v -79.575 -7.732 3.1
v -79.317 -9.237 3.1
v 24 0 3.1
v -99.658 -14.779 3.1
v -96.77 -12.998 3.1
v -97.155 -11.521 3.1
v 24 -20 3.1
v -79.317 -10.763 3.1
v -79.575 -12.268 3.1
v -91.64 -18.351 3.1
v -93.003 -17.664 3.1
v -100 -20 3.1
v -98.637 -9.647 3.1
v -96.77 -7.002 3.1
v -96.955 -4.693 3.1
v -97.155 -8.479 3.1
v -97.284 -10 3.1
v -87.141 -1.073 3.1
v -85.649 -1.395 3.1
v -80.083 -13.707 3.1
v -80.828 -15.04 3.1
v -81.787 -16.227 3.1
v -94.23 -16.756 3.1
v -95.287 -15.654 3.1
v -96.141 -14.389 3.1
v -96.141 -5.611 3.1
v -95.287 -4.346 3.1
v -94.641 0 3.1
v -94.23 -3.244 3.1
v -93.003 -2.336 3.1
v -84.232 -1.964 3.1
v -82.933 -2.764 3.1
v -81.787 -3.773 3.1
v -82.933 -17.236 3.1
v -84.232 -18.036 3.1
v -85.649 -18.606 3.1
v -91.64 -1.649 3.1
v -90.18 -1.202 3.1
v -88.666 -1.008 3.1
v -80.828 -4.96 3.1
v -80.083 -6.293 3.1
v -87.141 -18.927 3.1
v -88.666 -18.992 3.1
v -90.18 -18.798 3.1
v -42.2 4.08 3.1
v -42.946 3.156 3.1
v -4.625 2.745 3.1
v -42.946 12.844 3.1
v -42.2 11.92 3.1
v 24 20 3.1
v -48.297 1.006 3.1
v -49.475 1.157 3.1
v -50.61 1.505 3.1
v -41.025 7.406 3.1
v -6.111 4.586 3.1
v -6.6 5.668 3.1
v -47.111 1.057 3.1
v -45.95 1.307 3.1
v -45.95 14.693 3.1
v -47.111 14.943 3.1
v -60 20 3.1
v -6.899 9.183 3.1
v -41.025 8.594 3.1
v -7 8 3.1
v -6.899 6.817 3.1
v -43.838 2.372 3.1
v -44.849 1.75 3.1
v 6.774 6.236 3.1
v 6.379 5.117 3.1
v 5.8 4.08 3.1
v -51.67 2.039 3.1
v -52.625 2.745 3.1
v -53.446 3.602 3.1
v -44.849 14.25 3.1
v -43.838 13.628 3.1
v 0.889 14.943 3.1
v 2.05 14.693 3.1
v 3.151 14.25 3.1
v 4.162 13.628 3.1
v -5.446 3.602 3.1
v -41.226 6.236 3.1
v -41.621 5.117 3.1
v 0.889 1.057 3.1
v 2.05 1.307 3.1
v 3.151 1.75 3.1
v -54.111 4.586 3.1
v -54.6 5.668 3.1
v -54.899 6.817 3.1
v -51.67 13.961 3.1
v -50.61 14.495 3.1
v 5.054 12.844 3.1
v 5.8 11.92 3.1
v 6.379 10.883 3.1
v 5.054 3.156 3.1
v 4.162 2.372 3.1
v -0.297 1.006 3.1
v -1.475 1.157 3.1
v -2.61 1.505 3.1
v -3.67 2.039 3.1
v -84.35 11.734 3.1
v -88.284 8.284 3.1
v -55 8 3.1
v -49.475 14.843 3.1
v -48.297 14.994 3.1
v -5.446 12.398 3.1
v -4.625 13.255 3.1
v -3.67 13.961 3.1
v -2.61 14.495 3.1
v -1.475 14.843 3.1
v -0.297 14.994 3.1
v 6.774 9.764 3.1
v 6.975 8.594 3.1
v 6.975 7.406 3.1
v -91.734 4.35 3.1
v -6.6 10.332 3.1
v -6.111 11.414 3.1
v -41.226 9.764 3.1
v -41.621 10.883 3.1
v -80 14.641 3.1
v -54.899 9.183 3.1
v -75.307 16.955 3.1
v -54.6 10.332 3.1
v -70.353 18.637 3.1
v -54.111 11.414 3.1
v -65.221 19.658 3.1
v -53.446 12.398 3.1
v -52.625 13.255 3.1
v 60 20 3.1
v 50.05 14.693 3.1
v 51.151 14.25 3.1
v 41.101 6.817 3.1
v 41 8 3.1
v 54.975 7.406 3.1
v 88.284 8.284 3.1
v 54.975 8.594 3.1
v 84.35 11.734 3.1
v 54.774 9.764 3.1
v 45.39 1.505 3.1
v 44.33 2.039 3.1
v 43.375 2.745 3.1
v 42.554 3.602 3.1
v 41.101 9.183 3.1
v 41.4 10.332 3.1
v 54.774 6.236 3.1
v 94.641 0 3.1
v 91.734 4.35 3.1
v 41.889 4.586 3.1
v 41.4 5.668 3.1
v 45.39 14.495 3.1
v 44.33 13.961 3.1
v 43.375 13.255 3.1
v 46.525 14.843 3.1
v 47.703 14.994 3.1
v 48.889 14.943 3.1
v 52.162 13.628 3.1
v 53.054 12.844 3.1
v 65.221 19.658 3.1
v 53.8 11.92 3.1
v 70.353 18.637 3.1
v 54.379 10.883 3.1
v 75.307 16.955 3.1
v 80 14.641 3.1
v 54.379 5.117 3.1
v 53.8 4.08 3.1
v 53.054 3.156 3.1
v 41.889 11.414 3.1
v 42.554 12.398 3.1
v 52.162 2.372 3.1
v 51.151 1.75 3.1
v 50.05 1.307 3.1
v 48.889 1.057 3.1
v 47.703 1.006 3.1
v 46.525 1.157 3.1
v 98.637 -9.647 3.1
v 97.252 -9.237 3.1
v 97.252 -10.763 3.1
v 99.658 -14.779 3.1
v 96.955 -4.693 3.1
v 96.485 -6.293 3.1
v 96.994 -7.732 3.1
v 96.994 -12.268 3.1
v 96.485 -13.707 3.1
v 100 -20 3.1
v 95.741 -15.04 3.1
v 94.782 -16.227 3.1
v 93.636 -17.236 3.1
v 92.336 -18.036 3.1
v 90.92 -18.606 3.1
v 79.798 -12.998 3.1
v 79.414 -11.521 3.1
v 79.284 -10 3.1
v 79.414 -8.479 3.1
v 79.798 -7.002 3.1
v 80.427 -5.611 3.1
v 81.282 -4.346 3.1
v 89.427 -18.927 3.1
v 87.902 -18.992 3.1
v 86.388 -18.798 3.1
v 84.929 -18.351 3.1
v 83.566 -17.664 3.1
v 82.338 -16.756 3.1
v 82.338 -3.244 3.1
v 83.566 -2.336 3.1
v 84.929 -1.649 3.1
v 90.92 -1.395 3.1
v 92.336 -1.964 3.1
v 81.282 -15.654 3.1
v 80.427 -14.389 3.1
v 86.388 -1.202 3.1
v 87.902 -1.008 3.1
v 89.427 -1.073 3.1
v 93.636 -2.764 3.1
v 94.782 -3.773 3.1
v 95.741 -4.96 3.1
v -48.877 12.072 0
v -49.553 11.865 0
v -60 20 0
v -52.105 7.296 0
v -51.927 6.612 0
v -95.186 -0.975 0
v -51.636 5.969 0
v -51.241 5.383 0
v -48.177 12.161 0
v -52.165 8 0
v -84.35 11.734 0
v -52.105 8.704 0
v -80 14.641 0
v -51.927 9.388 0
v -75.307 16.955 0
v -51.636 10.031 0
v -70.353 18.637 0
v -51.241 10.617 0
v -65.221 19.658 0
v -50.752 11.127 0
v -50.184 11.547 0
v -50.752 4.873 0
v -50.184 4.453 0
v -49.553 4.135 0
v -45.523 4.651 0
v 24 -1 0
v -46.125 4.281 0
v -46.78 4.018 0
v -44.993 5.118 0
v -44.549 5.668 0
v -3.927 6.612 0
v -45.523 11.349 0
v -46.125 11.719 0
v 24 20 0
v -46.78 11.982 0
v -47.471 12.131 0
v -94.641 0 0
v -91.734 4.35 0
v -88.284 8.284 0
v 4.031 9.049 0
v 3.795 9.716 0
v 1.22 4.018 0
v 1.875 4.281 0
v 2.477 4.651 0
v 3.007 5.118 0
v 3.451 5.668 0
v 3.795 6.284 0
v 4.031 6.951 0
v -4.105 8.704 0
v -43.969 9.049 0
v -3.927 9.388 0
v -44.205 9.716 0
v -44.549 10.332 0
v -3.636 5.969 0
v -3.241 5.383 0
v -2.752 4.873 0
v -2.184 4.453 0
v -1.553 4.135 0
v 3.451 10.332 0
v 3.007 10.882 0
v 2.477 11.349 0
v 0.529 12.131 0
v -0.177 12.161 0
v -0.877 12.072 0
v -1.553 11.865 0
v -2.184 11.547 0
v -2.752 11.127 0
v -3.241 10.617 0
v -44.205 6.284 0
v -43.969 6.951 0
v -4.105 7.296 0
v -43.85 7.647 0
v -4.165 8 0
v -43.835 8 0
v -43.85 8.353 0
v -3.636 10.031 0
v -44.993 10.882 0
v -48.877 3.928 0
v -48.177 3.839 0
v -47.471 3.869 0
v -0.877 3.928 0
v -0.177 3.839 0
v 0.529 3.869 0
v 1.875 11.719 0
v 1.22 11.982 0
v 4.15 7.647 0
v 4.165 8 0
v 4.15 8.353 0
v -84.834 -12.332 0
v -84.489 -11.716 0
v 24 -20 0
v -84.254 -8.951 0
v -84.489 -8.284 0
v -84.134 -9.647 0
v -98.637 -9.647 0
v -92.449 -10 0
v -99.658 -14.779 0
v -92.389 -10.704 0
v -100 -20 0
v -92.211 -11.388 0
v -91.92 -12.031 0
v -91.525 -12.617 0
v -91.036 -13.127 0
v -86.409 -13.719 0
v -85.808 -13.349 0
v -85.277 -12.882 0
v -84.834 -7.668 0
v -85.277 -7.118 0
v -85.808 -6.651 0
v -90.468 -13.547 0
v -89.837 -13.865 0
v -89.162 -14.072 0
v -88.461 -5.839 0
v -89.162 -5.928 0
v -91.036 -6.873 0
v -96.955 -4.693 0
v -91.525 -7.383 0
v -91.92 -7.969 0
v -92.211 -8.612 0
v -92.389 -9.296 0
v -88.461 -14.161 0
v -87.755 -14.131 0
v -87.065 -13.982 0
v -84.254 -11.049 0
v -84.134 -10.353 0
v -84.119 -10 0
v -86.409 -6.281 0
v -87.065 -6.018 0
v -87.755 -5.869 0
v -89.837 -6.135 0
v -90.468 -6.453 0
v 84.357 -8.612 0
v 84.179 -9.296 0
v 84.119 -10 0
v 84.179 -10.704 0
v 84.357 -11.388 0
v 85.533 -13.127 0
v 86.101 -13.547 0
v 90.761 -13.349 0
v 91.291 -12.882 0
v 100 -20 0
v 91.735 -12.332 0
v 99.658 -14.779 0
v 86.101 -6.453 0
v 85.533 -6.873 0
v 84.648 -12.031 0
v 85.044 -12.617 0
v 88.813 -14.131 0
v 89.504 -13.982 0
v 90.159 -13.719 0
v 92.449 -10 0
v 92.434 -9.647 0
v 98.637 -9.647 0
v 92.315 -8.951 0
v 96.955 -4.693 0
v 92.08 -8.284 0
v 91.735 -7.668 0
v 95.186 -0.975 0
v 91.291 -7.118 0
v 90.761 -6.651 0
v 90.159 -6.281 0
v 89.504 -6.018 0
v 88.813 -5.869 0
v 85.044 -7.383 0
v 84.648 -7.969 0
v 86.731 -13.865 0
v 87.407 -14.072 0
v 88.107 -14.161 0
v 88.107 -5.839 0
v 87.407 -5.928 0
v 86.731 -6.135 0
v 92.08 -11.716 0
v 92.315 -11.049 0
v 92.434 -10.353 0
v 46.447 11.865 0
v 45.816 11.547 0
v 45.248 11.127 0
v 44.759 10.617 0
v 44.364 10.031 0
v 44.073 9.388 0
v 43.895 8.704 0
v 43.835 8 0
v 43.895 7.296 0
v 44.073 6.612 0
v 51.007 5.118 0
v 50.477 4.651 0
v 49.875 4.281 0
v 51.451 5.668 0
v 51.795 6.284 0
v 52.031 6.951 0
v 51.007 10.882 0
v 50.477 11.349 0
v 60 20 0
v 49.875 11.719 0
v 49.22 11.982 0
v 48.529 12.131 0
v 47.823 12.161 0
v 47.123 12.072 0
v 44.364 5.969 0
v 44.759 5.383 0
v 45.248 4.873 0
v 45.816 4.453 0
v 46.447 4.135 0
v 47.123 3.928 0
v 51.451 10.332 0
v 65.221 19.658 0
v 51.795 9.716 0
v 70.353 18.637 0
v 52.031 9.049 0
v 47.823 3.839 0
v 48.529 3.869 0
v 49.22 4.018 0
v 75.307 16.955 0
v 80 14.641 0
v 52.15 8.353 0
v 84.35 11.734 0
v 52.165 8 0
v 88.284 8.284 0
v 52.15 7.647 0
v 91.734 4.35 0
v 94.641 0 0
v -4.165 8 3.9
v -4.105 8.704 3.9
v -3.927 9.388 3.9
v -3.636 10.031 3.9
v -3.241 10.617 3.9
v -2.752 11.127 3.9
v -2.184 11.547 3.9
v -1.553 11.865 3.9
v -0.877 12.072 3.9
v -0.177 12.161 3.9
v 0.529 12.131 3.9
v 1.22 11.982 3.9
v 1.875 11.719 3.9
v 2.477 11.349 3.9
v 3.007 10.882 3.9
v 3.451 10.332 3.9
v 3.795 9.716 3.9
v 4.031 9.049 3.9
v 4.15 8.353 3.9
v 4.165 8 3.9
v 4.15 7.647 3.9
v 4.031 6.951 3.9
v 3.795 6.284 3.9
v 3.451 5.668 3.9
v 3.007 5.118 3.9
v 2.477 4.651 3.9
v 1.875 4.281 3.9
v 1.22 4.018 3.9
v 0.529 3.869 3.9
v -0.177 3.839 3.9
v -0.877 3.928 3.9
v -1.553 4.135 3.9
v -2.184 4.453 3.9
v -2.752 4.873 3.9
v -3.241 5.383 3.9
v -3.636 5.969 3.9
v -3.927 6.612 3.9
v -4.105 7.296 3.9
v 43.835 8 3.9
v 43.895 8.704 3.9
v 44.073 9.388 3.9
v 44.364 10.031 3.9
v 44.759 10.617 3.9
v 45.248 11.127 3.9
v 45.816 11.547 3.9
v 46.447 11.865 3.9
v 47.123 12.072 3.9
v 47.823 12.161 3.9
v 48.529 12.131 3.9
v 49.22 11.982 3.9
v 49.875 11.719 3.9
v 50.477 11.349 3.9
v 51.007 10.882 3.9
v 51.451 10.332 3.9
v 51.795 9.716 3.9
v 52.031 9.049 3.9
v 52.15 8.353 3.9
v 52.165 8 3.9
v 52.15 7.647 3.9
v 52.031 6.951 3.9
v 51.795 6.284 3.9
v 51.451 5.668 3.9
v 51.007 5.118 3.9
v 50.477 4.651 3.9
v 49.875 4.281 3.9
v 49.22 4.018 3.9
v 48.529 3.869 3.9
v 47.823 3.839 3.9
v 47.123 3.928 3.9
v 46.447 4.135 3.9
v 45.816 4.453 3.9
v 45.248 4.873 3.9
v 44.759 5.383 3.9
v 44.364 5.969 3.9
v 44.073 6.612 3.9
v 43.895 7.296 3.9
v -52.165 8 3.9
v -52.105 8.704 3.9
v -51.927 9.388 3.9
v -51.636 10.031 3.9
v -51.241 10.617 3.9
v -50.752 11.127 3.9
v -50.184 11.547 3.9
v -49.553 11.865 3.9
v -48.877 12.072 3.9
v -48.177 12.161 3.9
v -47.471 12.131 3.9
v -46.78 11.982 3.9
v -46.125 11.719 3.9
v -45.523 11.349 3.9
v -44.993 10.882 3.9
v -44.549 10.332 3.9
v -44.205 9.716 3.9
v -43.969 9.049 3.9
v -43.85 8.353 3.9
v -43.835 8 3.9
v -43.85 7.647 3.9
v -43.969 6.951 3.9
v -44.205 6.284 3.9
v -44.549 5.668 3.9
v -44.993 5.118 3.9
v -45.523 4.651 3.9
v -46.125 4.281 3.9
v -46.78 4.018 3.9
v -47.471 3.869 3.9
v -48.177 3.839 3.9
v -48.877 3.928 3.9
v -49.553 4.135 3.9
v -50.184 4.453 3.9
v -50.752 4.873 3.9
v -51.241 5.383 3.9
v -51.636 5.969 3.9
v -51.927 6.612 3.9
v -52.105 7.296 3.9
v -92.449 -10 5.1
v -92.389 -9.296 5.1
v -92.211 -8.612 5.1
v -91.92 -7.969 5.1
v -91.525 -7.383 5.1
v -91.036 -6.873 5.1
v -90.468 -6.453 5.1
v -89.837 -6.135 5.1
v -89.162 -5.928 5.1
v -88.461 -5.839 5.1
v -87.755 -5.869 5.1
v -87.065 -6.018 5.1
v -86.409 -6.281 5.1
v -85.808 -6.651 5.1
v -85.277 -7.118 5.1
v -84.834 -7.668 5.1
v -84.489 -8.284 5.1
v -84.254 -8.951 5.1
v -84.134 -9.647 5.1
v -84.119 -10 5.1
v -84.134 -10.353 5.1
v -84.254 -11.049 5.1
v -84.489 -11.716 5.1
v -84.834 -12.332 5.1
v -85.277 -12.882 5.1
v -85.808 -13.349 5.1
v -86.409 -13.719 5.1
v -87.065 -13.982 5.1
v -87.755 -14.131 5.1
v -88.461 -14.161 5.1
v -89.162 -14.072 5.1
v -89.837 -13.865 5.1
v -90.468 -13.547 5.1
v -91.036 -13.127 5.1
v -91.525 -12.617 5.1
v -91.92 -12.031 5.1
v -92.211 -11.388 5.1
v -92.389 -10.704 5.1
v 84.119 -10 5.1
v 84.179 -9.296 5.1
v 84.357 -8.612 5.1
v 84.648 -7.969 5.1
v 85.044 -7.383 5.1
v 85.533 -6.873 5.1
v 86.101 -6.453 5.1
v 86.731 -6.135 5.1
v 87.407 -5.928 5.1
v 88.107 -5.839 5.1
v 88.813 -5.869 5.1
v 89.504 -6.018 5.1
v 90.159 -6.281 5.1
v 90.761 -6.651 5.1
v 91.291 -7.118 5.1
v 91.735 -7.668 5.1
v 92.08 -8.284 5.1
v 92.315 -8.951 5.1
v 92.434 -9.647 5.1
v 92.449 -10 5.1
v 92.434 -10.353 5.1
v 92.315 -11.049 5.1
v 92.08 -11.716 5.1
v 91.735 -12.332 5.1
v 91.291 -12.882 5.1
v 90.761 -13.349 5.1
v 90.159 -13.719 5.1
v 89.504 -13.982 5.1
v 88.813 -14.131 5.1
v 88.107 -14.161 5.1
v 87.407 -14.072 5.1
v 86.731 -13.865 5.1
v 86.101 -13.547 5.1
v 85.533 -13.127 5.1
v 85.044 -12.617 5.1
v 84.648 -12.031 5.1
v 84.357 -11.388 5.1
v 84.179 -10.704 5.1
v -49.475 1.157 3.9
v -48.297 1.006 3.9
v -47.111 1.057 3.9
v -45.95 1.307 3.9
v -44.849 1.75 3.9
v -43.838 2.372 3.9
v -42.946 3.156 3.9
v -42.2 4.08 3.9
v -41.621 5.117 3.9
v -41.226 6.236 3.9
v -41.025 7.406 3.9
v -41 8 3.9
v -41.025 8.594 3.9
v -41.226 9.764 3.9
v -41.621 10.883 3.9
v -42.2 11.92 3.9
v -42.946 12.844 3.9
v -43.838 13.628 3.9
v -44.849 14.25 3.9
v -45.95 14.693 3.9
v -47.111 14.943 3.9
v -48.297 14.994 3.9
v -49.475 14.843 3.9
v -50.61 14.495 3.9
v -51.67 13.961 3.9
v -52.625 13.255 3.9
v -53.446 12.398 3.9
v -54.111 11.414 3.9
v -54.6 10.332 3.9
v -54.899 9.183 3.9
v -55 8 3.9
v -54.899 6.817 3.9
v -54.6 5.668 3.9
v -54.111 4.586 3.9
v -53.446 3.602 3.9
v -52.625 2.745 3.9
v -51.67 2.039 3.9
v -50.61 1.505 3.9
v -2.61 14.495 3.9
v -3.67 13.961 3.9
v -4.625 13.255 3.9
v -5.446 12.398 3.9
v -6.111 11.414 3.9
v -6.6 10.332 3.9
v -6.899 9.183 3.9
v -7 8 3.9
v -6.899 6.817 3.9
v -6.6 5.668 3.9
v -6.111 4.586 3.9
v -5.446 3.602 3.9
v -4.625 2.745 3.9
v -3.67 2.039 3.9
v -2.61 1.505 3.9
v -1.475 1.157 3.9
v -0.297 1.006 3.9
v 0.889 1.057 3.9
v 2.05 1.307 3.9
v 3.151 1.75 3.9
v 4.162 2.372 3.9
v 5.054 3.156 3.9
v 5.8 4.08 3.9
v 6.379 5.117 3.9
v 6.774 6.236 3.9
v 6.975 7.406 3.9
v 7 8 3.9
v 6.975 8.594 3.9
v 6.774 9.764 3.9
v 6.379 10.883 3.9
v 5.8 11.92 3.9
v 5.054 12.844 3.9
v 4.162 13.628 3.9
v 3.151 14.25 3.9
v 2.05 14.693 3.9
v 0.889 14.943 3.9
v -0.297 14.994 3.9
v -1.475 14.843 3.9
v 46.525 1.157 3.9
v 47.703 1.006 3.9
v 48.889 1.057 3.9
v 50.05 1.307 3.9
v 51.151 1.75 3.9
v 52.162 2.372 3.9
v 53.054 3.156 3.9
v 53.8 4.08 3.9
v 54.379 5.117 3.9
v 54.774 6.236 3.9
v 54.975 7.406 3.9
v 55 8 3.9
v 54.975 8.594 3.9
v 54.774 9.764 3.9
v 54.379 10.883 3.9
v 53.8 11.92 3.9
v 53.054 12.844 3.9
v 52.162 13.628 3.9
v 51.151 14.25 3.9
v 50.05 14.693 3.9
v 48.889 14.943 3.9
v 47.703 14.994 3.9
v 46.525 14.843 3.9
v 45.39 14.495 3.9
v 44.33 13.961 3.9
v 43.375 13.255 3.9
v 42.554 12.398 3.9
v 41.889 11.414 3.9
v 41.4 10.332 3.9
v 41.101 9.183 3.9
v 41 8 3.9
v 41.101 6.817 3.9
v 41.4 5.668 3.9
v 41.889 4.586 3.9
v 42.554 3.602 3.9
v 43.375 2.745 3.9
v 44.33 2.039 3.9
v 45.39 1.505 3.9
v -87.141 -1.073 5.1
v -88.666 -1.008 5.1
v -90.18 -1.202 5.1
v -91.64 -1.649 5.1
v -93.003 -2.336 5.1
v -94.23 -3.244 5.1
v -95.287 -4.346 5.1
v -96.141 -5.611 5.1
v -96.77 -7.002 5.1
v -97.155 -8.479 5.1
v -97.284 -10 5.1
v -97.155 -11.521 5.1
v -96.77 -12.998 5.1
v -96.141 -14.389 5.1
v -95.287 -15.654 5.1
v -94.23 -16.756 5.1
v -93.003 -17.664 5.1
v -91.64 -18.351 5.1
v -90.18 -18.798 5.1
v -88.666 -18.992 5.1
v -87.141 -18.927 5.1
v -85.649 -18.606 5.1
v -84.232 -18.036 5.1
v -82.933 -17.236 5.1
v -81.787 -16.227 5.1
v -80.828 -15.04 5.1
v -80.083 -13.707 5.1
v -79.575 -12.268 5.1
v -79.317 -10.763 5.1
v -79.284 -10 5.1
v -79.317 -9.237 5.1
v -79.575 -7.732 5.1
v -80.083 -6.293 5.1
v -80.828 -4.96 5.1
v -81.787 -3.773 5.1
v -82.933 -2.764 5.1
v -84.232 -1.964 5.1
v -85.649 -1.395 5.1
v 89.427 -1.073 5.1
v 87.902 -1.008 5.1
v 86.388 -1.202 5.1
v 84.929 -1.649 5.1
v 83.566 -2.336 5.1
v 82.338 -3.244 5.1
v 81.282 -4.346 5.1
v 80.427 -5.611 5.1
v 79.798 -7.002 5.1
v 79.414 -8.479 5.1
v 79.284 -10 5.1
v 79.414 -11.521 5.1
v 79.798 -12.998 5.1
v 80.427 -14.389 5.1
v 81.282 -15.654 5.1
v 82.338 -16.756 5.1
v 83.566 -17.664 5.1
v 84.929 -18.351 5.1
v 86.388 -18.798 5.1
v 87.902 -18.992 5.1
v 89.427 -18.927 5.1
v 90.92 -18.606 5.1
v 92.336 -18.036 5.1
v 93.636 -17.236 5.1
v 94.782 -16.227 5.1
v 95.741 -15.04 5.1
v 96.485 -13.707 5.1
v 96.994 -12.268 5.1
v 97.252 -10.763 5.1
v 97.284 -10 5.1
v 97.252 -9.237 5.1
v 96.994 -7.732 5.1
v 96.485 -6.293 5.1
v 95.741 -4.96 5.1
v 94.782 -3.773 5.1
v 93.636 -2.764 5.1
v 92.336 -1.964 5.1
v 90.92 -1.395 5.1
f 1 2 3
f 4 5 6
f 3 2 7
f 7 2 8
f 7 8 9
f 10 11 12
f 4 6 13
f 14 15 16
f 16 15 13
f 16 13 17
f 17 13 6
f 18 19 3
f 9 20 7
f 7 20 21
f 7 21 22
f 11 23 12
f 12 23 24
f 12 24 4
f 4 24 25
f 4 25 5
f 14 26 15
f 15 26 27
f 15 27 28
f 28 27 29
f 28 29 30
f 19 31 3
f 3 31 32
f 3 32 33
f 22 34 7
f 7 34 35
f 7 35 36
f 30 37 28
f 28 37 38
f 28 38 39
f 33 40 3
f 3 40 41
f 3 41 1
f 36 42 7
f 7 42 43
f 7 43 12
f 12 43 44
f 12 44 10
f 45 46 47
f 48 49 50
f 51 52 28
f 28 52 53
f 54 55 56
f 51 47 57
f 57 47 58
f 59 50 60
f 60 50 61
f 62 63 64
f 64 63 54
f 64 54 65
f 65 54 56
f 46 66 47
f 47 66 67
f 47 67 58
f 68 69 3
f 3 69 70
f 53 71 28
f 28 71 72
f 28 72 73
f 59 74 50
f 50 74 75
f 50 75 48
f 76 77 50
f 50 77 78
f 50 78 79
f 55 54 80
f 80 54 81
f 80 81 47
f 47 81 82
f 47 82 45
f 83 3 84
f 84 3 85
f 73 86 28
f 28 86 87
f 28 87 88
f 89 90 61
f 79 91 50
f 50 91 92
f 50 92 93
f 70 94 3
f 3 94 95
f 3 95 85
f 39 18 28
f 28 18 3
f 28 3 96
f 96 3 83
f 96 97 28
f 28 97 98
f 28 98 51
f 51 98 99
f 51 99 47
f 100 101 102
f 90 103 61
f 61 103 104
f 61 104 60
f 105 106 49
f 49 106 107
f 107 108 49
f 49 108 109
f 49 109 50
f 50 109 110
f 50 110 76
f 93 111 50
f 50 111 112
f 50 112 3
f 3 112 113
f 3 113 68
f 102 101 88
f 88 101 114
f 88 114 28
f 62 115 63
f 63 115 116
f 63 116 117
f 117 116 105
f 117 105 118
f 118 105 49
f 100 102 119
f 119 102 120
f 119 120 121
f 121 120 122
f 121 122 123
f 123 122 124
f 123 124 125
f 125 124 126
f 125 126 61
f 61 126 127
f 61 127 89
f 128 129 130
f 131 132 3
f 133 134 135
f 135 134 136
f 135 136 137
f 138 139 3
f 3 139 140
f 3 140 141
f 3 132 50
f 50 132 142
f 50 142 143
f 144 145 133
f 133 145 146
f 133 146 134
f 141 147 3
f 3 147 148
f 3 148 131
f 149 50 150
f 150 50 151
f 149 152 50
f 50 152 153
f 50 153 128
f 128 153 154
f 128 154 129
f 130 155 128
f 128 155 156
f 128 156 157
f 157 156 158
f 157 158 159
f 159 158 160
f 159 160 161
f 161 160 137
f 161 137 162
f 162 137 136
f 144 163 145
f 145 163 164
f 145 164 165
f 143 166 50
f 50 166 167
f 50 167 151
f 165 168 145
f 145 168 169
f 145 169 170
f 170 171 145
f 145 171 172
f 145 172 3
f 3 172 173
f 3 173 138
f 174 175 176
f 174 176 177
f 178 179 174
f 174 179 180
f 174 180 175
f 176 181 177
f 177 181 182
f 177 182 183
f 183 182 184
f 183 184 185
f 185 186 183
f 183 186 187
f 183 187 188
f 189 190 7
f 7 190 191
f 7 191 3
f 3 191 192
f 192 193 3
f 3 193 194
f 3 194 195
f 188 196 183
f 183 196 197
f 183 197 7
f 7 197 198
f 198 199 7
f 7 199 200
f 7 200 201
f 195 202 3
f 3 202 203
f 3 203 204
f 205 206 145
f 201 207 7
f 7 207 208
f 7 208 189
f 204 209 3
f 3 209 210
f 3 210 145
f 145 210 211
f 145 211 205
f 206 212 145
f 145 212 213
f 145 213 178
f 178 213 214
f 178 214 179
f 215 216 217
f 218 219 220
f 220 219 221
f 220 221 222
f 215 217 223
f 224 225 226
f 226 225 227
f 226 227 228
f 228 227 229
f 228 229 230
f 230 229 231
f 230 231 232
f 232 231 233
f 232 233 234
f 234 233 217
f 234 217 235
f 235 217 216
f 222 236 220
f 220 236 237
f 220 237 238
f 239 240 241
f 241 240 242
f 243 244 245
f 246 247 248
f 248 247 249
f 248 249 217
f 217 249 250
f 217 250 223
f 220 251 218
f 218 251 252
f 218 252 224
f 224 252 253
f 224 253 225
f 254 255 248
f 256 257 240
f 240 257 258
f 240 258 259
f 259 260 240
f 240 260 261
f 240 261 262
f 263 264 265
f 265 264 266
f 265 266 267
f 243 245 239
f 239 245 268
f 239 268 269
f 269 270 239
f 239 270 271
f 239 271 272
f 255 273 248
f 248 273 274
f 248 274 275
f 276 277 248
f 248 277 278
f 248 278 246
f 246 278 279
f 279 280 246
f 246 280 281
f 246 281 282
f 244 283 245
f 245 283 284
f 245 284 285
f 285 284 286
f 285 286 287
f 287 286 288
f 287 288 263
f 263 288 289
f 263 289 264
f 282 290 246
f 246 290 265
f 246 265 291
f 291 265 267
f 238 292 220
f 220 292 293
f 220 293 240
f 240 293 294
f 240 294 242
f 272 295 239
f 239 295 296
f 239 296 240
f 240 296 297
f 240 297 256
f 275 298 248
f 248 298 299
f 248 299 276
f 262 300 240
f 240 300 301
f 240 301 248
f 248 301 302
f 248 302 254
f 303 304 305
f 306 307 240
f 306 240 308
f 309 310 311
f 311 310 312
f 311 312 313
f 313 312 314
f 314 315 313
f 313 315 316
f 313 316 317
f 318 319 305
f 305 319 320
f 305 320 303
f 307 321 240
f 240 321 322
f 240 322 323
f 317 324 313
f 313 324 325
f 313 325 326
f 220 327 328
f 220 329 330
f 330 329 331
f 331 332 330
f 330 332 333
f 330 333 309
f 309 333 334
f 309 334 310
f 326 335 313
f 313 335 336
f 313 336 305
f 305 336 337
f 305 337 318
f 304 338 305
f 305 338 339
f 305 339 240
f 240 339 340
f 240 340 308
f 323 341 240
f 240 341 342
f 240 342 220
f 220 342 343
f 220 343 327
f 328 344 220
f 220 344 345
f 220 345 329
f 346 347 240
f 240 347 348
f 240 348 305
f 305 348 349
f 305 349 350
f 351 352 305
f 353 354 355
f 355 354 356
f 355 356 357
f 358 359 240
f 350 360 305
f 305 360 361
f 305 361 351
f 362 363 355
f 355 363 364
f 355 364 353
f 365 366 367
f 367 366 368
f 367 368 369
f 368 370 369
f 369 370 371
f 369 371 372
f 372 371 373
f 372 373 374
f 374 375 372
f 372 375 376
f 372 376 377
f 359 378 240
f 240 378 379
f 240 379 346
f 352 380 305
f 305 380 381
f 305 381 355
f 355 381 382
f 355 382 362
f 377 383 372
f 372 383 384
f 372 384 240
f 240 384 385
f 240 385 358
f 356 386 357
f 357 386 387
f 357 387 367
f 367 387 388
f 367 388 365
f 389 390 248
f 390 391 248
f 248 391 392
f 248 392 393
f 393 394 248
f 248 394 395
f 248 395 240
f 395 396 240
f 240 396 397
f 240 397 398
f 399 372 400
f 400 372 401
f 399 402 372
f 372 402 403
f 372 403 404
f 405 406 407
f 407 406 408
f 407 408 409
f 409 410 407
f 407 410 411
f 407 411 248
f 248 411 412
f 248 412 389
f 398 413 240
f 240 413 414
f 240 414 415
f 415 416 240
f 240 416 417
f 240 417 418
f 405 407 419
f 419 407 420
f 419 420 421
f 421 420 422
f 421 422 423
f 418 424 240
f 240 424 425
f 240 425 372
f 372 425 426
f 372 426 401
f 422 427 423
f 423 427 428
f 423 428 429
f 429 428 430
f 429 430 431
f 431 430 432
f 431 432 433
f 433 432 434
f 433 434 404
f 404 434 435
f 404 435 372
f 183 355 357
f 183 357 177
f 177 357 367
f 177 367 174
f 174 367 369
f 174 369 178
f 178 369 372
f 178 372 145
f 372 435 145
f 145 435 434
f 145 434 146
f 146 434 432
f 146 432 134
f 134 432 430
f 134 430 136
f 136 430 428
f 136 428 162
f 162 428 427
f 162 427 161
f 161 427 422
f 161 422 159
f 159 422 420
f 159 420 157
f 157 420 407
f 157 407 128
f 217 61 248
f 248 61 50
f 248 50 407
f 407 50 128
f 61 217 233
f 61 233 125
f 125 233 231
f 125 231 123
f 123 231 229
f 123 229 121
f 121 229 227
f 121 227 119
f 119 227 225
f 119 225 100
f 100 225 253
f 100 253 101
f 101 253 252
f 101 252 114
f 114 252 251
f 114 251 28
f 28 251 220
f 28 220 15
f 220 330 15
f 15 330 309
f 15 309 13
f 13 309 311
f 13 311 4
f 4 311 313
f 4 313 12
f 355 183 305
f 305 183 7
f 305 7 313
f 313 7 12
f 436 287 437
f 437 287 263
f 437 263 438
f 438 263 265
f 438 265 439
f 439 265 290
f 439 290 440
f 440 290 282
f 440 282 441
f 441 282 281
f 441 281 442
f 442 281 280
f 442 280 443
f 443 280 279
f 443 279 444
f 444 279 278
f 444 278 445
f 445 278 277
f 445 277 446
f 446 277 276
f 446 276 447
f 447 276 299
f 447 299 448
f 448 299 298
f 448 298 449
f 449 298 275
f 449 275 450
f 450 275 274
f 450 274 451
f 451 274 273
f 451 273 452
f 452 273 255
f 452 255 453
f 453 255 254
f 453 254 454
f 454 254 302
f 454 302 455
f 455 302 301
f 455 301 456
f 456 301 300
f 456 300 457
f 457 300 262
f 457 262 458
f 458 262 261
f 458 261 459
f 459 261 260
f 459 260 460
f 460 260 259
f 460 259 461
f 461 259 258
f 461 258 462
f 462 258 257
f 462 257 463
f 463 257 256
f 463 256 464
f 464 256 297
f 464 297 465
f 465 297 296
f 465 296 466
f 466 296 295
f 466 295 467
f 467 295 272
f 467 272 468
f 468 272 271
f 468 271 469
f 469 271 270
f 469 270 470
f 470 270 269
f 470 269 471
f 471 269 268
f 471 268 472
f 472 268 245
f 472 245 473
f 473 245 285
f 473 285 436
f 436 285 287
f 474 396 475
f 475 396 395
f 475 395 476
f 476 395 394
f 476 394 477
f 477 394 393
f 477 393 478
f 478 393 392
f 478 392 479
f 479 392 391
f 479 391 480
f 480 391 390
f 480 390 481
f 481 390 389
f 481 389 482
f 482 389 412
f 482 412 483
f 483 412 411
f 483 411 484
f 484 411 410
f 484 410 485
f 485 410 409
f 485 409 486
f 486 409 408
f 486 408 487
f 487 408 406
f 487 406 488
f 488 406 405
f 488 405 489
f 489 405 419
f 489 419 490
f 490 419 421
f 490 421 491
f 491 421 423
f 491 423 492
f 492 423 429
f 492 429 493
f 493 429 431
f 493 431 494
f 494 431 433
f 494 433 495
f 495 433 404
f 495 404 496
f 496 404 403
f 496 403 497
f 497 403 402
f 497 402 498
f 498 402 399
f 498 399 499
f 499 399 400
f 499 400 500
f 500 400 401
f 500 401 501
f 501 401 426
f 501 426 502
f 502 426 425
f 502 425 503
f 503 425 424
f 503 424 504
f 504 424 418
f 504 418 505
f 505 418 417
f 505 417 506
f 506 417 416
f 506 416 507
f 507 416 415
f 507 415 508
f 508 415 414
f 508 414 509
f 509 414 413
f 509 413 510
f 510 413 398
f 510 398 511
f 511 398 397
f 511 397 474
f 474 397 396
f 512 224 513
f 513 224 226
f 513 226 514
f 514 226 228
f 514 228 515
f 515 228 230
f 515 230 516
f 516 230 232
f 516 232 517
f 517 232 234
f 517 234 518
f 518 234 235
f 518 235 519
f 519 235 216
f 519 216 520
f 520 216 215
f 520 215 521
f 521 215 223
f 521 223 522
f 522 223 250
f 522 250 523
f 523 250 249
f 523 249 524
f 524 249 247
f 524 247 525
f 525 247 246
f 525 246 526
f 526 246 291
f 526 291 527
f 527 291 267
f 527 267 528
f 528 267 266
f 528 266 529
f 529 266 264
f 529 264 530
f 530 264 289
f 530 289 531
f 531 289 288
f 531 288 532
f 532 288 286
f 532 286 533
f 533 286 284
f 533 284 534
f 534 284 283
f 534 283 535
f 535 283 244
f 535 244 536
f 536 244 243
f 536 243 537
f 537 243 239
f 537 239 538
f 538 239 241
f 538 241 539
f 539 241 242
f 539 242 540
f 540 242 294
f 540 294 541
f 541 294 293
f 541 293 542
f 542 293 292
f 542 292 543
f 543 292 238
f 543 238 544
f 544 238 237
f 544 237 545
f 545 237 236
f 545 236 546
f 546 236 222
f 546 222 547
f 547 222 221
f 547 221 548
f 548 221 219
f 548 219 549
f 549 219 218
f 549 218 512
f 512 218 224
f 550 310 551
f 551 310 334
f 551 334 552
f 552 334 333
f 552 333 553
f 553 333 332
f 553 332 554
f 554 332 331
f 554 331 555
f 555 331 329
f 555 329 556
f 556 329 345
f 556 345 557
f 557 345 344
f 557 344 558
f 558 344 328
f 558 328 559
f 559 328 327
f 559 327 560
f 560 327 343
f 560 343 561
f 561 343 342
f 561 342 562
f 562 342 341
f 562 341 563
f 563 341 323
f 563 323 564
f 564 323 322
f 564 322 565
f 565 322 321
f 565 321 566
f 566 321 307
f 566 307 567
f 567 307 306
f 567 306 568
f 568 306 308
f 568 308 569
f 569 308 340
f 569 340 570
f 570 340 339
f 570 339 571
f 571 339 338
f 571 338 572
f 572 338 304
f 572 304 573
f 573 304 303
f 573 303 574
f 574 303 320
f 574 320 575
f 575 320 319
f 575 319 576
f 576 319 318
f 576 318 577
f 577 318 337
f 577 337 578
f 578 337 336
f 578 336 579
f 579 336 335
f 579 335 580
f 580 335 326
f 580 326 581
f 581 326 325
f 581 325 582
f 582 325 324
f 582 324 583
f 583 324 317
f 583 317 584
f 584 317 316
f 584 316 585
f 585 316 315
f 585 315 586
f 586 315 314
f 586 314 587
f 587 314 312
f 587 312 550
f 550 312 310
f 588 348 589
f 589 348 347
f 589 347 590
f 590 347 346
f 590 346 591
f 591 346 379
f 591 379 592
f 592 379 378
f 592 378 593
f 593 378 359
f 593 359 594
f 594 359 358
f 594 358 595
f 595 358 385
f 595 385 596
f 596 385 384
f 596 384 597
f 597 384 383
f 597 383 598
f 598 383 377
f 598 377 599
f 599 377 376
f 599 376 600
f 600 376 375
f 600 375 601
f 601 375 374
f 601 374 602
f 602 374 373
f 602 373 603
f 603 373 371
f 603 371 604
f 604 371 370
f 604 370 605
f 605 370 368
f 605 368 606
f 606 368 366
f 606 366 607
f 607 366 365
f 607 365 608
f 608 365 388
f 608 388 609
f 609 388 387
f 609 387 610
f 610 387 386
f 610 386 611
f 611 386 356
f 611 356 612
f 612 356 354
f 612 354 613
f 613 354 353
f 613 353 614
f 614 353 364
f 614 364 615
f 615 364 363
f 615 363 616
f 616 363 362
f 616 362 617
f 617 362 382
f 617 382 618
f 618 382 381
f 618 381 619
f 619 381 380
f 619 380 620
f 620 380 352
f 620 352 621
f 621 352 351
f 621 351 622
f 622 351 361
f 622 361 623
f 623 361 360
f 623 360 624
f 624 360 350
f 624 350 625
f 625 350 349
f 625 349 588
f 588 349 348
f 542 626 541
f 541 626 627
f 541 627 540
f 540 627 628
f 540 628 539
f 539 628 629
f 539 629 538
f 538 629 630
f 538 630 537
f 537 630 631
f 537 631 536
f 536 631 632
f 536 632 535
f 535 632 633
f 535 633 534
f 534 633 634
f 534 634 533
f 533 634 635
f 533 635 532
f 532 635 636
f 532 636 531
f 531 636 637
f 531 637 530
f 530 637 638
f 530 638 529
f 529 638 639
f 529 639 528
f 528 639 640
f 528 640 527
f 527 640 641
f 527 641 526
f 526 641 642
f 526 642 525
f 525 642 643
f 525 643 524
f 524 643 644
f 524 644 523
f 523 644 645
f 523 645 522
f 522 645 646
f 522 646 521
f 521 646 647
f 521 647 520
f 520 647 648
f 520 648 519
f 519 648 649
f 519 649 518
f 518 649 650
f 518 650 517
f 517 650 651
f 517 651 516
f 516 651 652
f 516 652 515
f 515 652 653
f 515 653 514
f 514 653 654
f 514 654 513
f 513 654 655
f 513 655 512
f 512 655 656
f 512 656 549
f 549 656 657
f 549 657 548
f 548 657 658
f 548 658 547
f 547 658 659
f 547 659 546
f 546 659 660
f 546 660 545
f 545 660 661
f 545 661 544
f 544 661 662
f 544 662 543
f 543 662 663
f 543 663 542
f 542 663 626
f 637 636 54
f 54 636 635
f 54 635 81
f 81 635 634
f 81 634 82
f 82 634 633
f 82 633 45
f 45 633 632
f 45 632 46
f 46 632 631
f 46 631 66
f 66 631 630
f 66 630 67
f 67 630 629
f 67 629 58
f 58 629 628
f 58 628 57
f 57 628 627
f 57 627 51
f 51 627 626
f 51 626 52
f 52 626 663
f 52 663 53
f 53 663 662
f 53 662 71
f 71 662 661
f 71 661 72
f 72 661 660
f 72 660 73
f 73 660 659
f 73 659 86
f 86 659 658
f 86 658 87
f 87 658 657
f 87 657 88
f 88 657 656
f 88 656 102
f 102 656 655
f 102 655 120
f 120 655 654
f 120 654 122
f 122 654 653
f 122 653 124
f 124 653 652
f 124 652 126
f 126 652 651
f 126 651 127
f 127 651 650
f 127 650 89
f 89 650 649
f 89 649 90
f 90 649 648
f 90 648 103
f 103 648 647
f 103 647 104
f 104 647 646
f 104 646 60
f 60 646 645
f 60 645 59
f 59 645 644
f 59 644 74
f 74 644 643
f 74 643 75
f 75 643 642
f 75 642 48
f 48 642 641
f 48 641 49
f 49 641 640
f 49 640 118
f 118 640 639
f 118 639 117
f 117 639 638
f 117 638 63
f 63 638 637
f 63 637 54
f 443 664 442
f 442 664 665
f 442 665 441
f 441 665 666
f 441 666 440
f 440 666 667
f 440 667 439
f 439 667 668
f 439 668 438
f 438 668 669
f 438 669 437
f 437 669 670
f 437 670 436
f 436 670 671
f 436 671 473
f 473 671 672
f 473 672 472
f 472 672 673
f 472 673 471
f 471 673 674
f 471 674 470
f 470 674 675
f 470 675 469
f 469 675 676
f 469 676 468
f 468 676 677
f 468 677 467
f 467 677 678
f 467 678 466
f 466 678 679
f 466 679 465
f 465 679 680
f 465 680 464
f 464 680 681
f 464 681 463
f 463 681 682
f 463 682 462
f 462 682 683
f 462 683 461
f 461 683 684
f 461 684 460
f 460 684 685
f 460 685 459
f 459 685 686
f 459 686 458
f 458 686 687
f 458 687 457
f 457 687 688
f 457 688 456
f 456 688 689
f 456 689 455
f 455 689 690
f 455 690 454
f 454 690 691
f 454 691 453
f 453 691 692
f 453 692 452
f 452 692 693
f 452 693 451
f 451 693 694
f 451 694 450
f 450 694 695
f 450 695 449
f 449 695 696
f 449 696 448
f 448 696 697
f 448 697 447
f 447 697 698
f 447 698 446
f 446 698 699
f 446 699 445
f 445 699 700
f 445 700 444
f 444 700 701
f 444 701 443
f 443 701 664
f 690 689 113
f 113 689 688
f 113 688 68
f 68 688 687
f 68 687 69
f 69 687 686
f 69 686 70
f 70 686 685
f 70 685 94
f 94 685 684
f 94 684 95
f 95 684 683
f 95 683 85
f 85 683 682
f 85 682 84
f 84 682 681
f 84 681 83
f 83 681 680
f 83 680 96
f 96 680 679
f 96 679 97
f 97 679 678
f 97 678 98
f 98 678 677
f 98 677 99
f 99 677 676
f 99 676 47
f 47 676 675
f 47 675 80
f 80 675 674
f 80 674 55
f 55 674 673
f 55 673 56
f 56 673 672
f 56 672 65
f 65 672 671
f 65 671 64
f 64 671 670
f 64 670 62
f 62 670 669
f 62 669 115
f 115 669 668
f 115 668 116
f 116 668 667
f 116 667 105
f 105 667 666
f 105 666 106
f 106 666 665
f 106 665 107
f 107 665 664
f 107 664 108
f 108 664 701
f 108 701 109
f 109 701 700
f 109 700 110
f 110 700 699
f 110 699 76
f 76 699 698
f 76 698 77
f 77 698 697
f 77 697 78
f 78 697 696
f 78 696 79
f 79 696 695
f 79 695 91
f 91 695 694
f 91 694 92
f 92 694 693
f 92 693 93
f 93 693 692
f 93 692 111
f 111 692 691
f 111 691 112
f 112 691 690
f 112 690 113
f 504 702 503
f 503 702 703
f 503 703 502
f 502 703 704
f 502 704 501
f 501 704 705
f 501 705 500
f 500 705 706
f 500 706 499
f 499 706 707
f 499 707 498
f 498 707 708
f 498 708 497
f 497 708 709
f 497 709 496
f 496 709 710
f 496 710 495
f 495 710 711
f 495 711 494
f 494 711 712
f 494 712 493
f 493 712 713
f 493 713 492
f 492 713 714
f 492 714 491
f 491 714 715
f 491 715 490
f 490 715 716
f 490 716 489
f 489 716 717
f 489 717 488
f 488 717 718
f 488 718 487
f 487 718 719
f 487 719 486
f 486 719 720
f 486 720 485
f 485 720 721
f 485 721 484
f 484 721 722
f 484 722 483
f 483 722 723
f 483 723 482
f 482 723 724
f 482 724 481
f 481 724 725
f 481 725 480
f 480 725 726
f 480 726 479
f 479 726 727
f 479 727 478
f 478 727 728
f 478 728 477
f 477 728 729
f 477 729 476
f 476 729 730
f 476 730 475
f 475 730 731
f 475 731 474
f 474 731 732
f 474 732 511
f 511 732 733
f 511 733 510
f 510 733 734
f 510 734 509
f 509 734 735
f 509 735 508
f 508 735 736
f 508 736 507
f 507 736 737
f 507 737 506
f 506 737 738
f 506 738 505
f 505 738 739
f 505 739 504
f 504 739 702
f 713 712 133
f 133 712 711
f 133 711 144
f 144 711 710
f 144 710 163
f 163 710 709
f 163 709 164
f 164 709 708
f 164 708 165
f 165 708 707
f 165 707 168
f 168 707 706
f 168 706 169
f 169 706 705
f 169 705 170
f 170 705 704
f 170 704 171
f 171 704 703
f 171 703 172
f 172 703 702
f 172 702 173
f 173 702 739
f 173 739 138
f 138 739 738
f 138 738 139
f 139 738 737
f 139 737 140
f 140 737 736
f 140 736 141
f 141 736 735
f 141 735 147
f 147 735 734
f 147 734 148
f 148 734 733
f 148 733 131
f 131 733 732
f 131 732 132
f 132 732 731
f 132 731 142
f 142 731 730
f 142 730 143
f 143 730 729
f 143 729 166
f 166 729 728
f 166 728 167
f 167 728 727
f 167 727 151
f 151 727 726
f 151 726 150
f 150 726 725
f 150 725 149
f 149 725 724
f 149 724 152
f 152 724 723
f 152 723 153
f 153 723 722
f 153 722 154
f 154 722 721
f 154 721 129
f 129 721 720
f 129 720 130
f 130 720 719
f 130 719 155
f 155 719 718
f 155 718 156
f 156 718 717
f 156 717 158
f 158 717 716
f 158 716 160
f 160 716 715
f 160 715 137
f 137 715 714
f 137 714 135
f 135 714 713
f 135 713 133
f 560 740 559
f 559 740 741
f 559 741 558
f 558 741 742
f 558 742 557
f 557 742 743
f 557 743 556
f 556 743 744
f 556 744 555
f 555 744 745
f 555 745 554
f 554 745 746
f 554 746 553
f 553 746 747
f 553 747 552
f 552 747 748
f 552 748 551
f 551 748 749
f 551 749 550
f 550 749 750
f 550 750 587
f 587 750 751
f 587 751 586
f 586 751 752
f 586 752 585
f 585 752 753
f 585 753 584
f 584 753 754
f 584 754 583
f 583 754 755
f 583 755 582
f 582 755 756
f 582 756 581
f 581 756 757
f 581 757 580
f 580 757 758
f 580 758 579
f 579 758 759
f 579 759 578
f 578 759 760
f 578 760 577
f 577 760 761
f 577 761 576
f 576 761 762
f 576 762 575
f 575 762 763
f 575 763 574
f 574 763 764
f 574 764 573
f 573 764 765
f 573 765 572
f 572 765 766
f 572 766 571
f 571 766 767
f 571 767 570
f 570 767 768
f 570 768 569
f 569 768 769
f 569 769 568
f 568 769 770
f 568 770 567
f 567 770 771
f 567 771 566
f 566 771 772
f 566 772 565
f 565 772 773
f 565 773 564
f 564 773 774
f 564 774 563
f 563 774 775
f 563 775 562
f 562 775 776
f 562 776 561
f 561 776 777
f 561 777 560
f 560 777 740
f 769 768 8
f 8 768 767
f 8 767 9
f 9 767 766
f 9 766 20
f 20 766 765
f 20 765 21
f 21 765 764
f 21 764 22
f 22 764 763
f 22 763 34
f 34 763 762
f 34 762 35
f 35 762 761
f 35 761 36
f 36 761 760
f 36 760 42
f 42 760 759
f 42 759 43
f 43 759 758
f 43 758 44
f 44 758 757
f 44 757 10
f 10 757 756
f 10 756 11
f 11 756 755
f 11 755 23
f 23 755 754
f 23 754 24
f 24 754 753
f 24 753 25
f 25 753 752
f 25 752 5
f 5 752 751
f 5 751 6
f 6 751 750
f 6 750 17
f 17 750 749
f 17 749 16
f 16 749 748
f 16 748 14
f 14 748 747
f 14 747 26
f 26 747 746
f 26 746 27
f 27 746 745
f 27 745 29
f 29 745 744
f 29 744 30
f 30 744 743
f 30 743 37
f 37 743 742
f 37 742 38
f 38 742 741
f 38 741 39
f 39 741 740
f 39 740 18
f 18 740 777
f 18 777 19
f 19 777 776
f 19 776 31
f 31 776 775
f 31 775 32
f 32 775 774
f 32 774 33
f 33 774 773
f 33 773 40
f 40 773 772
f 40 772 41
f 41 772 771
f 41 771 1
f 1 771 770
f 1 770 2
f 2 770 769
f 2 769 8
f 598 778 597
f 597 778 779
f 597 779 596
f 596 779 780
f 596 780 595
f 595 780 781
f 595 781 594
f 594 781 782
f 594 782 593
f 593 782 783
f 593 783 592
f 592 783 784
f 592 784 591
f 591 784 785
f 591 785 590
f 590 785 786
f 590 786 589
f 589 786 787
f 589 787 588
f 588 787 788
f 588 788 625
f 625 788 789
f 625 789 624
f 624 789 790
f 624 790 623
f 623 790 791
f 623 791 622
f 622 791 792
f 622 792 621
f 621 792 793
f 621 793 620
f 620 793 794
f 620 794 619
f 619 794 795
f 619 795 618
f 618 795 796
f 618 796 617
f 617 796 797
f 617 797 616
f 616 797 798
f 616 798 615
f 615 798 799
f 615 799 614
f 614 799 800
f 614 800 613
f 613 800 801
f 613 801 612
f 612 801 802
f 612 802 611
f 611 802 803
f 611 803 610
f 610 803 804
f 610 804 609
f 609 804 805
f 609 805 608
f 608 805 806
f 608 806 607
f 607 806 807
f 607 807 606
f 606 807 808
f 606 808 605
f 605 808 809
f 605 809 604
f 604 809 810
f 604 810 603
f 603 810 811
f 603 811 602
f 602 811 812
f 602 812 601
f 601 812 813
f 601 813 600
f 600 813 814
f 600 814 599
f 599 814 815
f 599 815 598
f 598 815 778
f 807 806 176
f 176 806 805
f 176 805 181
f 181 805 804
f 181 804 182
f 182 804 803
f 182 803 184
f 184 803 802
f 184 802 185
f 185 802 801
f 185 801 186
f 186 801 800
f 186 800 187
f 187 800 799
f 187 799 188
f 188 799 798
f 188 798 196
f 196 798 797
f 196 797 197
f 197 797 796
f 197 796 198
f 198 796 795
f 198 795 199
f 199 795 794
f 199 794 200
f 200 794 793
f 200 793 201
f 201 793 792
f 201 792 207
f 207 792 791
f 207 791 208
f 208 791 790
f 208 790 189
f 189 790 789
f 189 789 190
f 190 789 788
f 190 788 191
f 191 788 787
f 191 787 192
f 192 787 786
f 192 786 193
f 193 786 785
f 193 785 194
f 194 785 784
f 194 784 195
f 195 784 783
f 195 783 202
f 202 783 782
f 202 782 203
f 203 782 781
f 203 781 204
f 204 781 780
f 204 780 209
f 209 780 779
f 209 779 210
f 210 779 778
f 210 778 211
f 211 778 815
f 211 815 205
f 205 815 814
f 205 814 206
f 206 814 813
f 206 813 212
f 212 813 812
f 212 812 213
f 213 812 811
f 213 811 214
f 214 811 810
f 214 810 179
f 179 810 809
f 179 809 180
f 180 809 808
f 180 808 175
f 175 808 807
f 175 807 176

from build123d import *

# Parameters (mm, degrees)
SKETCH1_R           = 4.165
BOSS_EXTRUDE1_DEPTH = 3.1
SKETCH2_R           = 7
SKETCH2_R_2         = 4.165
BOSS_EXTRUDE3_DEPTH = 0.8
SKETCH4_R           = 9
SKETCH4_R_2         = 4.165
BOSS_EXTRUDE4_DEPTH = 2


with BuildPart() as part:
    # Sketch1 → Boss-Extrude1 (new body)
    with BuildSketch(Plane.XY):
        with BuildLine():
            Line((-60, 20), (60, 20))
            ThreePointArc((60, 20), (88.284271247, 8.284271247), (100, -20))
            Line((100, -20), (-100, -20))
            ThreePointArc((-100, -20), (-88.284271247, 8.284271247), (-60, 20))
        make_face()
        with Locations(Location((0, 8, 0), (0, 0, 180))):
            Circle(SKETCH1_R, mode=Mode.SUBTRACT)
        with Locations(Location((48, 8, 0), (0, 0, 180))):
            Circle(SKETCH1_R, mode=Mode.SUBTRACT)
        with Locations(Location((-48, 8, 0), (0, 0, 180))):
            Circle(SKETCH1_R, mode=Mode.SUBTRACT)
        with Locations(Location((-88.284271247, -10, 0), (0, 0, 180))):
            Circle(SKETCH1_R, mode=Mode.SUBTRACT)
        with Locations(Location((88.284271247, -10, 0), (0, 0, 180))):
            Circle(SKETCH1_R, mode=Mode.SUBTRACT)
    extrude(amount=BOSS_EXTRUDE1_DEPTH)

    # Sketch2 → Boss-Extrude3 (add)
    # profile 1 of 3: a face of its own
    with BuildSketch(Plane.XY.offset(3.1)):
        with Locations(Location((-48, 8, 0), (0, 0, 180))):
            Circle(SKETCH2_R)
        with Locations(Location((-48, 8, 0), (0, 0, 180))):
            Circle(SKETCH2_R_2, mode=Mode.SUBTRACT)
    # profile 2 of 3: a face of its own
    with BuildSketch(Plane.XY.offset(3.1)):
        with Locations(Location((0, 8, 0), (0, 0, 180))):
            Circle(SKETCH2_R)
        with Locations(Location((0, 8, 0), (0, 0, 180))):
            Circle(SKETCH2_R_2, mode=Mode.SUBTRACT)
    # profile 3 of 3: a face of its own
    with BuildSketch(Plane.XY.offset(3.1)):
        with Locations(Location((48, 8, 0), (0, 0, 180))):
            Circle(SKETCH2_R)
        with Locations(Location((48, 8, 0), (0, 0, 180))):
            Circle(SKETCH2_R_2, mode=Mode.SUBTRACT)
    extrude(amount=BOSS_EXTRUDE3_DEPTH)

    # Sketch4 → Boss-Extrude4 (add)
    # profile 1 of 2: a face of its own
    with BuildSketch(Plane.XY.offset(3.1)):
        with Locations(Location((-88.284271247, -10, 0), (0, 0, 180))):
            Circle(SKETCH4_R)
        with Locations(Location((-88.284271247, -10, 0), (0, 0, 180))):
            Circle(SKETCH4_R_2, mode=Mode.SUBTRACT)
    # profile 2 of 2: a face of its own
    with BuildSketch(Plane.XY.offset(3.1)):
        with Locations(Location((88.284271247, -10, 0), (0, 0, 180))):
            Circle(SKETCH4_R)
        with Locations(Location((88.284271247, -10, 0), (0, 0, 180))):
            Circle(SKETCH4_R_2, mode=Mode.SUBTRACT)
    extrude(amount=BOSS_EXTRUDE4_DEPTH)


solid = part.part
